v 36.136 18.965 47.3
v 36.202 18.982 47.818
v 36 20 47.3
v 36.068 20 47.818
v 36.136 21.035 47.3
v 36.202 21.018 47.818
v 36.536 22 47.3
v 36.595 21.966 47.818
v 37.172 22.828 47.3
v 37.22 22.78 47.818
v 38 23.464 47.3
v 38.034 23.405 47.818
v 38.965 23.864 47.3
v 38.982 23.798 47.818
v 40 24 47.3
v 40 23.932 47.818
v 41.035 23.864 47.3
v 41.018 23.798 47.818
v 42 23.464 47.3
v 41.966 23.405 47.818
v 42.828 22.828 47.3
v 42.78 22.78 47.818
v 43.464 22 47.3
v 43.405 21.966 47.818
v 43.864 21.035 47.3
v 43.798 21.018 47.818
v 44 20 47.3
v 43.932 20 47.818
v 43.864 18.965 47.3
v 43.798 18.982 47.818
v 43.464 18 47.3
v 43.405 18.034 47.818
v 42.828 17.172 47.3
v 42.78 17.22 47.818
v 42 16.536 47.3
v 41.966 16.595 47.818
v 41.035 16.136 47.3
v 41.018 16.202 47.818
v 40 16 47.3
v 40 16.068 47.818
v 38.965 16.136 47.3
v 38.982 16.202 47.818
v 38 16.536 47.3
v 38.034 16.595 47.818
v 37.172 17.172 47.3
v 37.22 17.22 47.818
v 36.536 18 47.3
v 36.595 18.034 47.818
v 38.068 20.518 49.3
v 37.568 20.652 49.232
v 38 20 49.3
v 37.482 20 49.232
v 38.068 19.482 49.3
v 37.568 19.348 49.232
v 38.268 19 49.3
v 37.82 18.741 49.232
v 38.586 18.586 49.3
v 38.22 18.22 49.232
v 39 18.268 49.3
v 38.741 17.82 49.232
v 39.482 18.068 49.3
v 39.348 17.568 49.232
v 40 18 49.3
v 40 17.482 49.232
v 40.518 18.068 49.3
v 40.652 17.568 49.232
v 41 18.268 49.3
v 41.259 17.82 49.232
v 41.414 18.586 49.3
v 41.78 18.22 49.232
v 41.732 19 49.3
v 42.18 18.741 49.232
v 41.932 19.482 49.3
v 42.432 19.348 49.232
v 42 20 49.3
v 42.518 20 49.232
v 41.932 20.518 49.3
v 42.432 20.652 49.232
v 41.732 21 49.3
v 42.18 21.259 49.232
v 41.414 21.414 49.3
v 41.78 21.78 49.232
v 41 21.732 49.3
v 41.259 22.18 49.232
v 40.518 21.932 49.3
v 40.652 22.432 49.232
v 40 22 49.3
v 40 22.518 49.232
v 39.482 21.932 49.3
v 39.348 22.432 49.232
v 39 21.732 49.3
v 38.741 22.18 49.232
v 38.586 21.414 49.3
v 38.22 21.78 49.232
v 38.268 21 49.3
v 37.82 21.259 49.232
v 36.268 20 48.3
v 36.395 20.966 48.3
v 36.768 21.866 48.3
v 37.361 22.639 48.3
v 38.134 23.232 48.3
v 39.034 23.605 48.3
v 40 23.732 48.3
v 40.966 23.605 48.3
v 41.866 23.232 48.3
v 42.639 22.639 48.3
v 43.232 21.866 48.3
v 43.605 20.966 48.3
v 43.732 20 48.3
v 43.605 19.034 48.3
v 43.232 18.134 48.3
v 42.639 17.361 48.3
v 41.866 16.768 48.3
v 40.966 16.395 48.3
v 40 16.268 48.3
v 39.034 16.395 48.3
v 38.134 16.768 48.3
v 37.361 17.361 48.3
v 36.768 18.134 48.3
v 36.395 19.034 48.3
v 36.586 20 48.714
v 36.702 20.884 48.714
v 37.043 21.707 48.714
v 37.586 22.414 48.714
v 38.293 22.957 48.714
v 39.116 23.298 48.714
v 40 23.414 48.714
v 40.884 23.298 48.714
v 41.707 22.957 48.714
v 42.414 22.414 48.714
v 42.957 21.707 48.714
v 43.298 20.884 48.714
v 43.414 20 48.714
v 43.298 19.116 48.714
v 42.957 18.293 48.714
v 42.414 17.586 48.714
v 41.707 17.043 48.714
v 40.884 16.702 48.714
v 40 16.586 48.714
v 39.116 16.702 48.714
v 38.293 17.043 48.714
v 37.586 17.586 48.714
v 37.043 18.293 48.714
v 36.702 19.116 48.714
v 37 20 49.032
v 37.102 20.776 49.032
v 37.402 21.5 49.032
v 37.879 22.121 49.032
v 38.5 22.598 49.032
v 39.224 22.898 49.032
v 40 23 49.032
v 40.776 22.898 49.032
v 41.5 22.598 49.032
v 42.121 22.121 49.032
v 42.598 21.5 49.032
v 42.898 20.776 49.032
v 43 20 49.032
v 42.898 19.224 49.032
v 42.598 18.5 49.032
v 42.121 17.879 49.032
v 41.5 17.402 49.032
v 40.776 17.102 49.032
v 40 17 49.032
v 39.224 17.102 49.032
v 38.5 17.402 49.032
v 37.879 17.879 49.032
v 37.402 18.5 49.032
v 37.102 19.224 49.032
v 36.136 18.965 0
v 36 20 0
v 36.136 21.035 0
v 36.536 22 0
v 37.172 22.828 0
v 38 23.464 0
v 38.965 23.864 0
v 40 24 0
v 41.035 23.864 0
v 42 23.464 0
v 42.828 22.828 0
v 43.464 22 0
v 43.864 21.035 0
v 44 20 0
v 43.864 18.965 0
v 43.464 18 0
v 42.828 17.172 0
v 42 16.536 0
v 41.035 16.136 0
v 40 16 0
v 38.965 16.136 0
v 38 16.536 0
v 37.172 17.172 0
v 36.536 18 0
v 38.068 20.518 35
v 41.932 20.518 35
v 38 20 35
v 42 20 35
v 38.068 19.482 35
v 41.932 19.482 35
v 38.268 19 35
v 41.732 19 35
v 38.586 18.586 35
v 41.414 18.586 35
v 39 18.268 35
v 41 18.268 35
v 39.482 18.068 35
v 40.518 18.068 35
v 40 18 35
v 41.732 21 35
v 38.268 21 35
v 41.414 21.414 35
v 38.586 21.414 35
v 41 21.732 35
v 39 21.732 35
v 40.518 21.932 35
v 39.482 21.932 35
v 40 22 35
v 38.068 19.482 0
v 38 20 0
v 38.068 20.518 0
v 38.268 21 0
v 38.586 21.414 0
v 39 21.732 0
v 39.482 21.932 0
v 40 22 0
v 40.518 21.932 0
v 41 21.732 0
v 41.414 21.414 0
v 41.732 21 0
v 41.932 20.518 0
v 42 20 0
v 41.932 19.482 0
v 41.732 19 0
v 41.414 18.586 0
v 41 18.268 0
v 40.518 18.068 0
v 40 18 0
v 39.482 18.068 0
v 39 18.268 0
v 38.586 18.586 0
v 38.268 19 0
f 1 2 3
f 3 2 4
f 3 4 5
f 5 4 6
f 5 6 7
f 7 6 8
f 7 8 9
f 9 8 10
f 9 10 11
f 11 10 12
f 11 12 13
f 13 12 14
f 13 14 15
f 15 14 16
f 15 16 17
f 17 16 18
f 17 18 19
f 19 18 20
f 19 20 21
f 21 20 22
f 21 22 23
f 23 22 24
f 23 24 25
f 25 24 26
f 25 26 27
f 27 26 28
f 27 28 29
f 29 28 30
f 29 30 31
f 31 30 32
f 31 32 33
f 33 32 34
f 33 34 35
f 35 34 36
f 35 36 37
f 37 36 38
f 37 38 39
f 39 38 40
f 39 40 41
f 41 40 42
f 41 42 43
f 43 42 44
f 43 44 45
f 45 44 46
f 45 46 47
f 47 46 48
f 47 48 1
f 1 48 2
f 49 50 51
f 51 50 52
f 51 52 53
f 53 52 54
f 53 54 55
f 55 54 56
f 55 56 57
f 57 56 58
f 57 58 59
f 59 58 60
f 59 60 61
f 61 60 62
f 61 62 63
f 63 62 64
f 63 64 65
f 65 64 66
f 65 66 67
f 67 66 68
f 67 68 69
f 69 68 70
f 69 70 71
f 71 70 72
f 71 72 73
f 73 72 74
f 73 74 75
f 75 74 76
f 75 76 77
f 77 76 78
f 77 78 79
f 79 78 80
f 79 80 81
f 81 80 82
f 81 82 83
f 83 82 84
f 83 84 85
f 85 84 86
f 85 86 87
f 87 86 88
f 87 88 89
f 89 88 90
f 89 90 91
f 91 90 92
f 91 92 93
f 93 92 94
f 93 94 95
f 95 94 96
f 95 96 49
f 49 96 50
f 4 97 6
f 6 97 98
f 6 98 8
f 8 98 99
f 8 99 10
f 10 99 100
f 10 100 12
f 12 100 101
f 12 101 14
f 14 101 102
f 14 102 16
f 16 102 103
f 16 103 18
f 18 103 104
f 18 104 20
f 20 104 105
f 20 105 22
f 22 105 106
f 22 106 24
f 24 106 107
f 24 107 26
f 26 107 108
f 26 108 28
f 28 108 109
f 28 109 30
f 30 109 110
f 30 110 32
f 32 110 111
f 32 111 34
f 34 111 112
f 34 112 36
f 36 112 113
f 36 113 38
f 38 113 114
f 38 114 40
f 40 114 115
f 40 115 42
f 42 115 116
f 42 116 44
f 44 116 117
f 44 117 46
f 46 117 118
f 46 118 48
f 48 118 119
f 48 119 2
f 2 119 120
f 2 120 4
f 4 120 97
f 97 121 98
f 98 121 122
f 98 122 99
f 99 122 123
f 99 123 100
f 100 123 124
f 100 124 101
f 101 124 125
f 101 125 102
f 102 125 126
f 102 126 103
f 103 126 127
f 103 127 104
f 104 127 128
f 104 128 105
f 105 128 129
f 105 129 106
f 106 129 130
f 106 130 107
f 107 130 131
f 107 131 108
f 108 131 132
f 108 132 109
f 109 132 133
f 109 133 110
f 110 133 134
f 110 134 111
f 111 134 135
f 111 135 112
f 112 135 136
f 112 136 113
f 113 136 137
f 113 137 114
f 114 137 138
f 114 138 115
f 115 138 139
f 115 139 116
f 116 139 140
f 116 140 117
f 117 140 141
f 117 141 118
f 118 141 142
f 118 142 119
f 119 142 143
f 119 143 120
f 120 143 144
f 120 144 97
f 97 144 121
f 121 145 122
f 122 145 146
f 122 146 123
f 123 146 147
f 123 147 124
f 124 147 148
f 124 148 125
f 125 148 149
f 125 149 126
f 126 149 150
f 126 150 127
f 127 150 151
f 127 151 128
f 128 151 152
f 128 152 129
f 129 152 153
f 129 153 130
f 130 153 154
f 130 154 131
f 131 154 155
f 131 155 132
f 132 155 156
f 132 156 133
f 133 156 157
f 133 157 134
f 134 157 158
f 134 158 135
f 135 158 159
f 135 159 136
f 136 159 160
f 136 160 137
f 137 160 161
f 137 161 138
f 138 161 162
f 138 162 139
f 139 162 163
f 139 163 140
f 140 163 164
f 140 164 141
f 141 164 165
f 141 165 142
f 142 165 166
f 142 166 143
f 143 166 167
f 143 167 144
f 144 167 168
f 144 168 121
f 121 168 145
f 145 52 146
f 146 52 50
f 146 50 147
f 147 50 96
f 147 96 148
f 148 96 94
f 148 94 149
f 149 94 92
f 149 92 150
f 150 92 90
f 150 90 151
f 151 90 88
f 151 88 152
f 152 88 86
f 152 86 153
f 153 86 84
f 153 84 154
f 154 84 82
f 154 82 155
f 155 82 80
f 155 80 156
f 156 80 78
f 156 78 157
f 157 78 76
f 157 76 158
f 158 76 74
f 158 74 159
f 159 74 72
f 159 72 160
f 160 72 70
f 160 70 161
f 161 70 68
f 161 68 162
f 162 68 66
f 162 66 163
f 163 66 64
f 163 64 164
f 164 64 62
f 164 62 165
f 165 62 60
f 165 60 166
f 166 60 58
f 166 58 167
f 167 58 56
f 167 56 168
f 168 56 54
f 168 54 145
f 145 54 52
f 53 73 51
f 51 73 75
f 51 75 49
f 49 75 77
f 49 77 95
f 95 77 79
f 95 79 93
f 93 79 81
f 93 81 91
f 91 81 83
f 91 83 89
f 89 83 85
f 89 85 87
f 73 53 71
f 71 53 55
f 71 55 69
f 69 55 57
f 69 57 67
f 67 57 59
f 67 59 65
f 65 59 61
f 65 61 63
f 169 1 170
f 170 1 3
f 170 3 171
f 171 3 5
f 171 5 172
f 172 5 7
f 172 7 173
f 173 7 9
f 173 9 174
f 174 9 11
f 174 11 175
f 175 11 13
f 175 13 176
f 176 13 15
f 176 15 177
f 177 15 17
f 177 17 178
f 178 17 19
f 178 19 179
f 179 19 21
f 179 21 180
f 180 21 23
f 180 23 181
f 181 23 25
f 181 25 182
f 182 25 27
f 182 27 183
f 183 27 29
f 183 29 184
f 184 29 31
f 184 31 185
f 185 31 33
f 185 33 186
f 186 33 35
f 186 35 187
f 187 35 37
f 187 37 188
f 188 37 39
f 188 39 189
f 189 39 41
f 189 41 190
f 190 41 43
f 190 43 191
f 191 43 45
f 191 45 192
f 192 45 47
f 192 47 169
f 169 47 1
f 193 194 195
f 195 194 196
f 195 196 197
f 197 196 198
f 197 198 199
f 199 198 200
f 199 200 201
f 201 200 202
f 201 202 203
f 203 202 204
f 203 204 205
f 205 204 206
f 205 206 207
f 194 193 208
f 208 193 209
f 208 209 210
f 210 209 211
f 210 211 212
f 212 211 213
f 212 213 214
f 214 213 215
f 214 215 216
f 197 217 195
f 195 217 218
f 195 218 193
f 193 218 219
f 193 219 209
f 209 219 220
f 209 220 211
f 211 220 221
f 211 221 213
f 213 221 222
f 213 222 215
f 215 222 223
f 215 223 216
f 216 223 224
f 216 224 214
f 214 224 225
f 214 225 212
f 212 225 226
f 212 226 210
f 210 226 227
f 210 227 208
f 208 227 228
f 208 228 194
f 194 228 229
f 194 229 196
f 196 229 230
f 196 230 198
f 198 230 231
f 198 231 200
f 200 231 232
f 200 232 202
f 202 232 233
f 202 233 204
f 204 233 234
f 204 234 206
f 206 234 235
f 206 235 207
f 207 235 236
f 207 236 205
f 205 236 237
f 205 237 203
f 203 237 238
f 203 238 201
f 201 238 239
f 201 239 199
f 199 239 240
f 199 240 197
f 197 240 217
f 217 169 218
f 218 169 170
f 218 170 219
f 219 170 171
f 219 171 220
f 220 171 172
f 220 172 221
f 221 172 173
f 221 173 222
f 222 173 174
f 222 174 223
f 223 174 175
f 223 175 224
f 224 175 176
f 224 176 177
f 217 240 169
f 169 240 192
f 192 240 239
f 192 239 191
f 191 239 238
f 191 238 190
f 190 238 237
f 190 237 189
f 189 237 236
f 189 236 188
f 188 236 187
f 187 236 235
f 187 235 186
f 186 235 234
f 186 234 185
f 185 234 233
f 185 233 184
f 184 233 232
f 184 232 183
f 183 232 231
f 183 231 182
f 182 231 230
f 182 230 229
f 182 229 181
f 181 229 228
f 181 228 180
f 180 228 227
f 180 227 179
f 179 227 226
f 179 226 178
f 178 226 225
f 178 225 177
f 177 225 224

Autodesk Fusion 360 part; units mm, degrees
sketch "Sketch1" plane through (0, 0, 0) normal (0, 0, 1) x (1, 0, 0)
  circle A0 centre (40, 20) radius 2
  circle A1 centre (40, 20) radius 4
  dimension "d1" = 4
  dimension "d2" = 8
extrude "Extrude1" add sketch "Sketch1" along normal blind 35 makes body 1
sketch "Sketch2" plane through (0, 0, 35) normal (0, 0, 1) x (-1, 0, 0)
  circle A0 centre (-40, -20) radius 2
  circle A1 centre (-40, -20) radius 4
  circle A2 centre (-40, -20) radius 4
  circle A3 centre (-40, -20) radius 2
  dimension "d5" = 8
extrude "Extrude2" add sketch "Sketch2" along normal blind 14.3 separate body contours A0 A3 makes body 2
extrude "Extrude3" add 1 faces at (43.311, 19.7019, 35) along direction (0, 0, 1) blind 14.3 on bodies 1 bodies 1 2
fillet "Fillet1" radius 2 1 edges at (36.2707, 18.5535, 49.3) on bodies 1
